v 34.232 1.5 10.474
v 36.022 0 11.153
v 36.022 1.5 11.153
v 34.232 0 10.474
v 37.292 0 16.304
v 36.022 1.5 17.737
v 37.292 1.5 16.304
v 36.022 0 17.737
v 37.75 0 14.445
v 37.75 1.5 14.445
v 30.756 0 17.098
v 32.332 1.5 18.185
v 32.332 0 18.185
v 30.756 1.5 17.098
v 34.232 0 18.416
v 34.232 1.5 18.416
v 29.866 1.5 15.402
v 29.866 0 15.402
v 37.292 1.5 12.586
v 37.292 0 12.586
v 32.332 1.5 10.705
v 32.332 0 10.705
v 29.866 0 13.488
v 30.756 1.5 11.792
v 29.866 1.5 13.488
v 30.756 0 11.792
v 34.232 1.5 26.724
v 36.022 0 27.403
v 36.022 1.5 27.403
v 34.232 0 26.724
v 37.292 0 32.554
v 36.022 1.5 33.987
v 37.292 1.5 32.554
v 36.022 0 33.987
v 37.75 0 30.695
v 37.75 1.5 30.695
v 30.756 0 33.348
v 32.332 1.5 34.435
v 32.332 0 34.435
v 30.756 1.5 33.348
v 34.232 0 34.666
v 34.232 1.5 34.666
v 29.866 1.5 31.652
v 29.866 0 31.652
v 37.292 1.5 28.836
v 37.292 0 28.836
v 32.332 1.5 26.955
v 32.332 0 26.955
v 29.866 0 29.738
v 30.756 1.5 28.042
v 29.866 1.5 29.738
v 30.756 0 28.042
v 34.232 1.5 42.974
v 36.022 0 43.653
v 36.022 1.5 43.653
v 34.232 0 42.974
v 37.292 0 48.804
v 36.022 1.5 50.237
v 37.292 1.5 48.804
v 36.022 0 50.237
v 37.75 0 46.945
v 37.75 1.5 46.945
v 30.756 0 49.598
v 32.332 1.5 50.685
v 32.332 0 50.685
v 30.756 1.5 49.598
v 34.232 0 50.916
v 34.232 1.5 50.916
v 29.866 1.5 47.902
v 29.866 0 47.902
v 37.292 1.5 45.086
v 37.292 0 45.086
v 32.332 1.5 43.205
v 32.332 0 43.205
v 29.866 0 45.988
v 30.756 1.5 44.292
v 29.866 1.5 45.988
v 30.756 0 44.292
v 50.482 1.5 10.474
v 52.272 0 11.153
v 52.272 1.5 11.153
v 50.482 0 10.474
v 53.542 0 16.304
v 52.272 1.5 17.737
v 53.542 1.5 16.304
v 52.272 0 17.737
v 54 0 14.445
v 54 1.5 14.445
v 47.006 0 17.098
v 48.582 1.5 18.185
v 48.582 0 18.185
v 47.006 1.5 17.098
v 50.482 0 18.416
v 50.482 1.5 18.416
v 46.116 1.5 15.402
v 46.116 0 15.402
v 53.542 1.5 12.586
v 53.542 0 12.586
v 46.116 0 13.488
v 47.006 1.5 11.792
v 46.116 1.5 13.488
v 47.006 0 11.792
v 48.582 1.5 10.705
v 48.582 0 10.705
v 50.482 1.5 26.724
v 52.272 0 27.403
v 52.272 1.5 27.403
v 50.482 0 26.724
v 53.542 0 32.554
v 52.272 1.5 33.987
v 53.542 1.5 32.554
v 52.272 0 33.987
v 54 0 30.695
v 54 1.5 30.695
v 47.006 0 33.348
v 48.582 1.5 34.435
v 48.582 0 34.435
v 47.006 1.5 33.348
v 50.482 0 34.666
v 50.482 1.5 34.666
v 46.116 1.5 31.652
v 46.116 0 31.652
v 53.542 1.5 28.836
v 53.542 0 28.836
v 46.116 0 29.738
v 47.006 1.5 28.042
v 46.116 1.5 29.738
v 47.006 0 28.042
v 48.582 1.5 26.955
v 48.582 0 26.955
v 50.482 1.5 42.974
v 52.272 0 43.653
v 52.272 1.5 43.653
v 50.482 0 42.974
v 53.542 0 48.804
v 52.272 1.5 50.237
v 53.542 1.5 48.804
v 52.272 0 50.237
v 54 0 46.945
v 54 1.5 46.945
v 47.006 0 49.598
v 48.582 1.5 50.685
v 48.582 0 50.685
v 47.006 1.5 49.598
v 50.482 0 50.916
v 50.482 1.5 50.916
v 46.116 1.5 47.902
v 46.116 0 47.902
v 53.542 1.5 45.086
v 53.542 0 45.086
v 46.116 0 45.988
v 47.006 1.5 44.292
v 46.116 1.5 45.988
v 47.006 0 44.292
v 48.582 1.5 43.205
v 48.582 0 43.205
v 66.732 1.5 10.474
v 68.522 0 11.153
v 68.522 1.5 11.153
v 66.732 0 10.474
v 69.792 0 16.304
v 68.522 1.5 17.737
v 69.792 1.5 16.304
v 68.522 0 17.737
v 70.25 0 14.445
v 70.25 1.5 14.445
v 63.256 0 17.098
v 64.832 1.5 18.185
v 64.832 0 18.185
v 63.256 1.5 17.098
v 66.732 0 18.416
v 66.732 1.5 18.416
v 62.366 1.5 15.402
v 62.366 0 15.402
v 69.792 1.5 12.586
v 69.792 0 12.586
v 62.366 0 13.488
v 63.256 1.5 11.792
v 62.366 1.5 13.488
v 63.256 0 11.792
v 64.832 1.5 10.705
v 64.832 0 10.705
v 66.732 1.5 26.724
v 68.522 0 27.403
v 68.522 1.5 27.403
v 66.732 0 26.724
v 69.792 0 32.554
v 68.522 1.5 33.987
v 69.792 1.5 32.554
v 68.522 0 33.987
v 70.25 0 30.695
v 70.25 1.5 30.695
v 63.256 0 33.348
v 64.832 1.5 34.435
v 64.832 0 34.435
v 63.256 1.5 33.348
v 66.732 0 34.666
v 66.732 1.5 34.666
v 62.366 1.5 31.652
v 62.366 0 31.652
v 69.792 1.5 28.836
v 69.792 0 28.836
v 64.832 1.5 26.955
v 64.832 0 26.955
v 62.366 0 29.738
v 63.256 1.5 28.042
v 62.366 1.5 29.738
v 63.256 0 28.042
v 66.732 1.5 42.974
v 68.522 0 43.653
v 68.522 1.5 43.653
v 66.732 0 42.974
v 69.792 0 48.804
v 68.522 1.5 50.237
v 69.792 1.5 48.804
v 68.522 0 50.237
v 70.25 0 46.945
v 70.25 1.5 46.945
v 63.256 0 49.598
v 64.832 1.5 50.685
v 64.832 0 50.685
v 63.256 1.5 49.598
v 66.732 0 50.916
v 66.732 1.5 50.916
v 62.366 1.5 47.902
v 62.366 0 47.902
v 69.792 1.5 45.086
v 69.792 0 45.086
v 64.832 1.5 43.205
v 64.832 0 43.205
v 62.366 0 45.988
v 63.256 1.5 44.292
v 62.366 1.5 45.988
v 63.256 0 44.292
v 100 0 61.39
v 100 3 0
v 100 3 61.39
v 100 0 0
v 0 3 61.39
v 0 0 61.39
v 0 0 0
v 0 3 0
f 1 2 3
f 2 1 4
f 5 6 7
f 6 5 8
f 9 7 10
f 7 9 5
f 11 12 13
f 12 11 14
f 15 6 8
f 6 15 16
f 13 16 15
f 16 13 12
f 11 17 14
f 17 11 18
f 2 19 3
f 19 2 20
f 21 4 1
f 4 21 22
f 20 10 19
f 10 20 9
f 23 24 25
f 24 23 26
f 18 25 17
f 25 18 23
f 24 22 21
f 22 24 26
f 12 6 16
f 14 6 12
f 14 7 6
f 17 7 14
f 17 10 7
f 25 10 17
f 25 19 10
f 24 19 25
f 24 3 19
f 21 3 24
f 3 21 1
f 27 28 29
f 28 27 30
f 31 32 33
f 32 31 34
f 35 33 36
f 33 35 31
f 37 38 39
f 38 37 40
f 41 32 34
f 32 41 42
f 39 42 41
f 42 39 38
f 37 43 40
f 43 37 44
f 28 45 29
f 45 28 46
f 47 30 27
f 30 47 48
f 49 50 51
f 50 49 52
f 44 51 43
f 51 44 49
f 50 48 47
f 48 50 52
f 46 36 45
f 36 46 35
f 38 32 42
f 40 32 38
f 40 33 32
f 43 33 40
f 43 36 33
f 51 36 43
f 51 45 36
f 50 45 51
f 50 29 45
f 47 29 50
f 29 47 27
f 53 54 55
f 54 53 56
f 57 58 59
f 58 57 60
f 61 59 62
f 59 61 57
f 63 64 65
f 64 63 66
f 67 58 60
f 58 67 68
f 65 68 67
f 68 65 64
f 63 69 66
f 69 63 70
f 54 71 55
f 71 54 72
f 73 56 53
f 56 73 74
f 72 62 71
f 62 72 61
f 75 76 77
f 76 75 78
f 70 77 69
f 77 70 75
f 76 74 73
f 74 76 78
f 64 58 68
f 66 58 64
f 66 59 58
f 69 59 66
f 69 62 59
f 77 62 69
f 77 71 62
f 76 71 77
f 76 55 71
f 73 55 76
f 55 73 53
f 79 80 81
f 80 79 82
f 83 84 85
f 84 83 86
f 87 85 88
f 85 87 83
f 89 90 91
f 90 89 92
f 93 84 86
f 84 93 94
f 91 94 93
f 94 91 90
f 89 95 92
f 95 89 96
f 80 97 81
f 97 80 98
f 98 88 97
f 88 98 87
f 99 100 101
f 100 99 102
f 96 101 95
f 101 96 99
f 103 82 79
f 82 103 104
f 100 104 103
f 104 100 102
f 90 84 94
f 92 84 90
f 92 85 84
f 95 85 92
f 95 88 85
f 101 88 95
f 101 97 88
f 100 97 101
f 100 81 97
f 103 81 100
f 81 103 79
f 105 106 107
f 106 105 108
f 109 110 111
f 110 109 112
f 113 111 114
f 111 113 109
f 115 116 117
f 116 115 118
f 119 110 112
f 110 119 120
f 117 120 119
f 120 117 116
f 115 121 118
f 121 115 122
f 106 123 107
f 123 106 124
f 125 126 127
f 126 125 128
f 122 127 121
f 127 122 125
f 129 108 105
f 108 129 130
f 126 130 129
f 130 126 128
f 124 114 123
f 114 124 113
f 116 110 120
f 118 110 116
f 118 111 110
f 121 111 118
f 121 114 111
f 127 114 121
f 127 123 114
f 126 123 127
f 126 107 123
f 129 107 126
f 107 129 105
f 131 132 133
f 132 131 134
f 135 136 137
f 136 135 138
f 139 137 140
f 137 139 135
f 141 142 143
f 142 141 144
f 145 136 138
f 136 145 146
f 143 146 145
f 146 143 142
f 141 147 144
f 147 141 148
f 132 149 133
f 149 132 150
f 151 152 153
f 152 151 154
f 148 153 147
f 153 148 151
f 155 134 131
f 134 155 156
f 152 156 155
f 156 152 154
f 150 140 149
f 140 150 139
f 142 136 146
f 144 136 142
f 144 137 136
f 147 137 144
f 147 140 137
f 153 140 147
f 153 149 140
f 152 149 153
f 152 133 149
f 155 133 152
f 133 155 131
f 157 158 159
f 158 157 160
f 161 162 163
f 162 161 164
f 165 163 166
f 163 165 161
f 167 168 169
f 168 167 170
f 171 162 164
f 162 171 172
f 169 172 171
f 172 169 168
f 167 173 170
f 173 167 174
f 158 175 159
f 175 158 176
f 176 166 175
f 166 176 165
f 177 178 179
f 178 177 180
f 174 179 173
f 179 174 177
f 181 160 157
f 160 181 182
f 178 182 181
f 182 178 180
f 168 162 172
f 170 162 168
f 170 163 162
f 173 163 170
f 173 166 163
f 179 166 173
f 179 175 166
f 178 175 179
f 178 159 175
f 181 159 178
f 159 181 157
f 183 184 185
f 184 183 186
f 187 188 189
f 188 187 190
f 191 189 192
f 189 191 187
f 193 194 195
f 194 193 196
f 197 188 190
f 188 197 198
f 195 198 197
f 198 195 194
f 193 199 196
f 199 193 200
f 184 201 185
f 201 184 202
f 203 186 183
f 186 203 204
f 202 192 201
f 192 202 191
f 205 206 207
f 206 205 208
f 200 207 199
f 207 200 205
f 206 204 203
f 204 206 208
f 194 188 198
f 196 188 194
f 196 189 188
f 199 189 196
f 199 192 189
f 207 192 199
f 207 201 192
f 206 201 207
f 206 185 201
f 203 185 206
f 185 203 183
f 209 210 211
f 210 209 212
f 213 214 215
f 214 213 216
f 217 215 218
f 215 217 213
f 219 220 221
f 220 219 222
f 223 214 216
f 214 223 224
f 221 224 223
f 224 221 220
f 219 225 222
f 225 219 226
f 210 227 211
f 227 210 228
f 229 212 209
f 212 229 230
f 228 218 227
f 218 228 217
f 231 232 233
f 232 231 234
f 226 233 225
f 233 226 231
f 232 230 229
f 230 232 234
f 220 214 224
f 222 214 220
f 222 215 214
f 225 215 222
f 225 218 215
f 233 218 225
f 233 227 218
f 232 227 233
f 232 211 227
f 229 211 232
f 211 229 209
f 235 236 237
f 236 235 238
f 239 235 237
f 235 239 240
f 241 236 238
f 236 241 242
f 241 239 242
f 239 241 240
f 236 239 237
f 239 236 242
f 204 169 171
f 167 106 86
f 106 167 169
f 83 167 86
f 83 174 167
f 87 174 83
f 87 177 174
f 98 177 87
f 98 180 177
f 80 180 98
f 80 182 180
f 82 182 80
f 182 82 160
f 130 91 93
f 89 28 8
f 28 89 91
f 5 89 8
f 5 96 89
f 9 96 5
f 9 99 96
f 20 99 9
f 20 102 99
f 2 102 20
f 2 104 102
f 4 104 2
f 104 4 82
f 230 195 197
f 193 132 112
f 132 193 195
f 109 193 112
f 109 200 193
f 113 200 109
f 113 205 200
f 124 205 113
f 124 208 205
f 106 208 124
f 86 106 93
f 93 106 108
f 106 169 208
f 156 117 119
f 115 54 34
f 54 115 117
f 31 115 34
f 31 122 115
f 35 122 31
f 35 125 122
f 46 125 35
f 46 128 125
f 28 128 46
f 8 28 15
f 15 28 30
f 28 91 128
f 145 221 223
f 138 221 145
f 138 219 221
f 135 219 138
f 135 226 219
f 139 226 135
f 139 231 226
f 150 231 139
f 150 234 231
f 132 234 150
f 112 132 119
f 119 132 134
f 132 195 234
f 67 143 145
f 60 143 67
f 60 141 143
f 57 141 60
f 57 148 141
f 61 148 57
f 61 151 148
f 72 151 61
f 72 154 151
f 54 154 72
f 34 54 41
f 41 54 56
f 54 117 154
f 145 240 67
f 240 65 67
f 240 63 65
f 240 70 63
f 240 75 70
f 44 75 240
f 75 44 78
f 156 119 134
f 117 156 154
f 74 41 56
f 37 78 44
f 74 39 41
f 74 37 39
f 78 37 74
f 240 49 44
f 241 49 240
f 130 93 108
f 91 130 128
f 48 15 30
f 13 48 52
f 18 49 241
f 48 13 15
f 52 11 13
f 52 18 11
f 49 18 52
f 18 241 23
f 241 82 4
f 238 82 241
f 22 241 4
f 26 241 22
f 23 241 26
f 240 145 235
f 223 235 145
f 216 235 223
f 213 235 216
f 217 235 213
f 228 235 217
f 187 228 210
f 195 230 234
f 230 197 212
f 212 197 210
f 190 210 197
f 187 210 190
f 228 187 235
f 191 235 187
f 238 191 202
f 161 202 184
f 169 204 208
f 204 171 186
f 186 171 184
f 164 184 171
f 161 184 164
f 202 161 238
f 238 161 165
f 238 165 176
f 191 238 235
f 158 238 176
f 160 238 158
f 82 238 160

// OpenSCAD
/* doodle-meta {"version":1,"parameters":{"width":{"label":"Overall width","description":"Changes the body width","unit":"mm","feature":"body_width"},"height":{"label":"Overall height","description":"Changes the body height","unit":"mm","feature":"body_height"},"thickness":{"label":"Plate thickness","description":"Changes the plate thickness","unit":"mm","feature":"body_thickness"},"hole_diameter":{"label":"Hole diameter","description":"Changes the diameter of the vent holes","unit":"mm","feature":"hole_grid"},"hole_spacing_x":{"label":"Horizontal hole spacing","description":"Changes the horizontal distance between hole centers","unit":"mm","feature":"hole_grid"},"hole_spacing_y":{"label":"Vertical hole spacing","description":"Changes the vertical distance between hole centers","unit":"mm","feature":"hole_grid"}},"features":{"body_width":{"kind":"dimension","axis":"x","label":"Overall width"},"body_height":{"kind":"dimension","axis":"z","label":"Overall height"},"body_thickness":{"kind":"dimension","axis":"y","label":"Plate thickness"},"hole_grid":{"kind":"region","label":"Hole Grid","min":[{"parameter":"width","scale":0.34},{"parameter":"thickness","scale":0.0,"offset":0.0},{"parameter":"height","scale":0.3673}],"max":[{"parameter":"width","scale":0.664},{"parameter":"thickness","scale":1.0,"offset":0.0},{"parameter":"height","scale":0.6287}]}}} */

width = 100.0;
height = 61.39;
thickness = 3.0;
hole_diameter = 8.0;
hole_spacing_x = 16.25;
hole_spacing_y = 16.25;

eps = 0.01;

module vent_grille() {
    difference() {
        // Main plate body
        cube([width, thickness, height]);
        
        // Subtract 3x3 grid of holes
        // Center of grid is at (width/2, height/2)
        // Holes are cut along Y axis (front view holes)
        for (i = [-1:1]) {
            for (j = [-1:1]) {
                translate([
                    width/2 + i * hole_spacing_x,
                    -eps,
                    height/2 + j * hole_spacing_y
                ]) {
                    rotate([90, 0, 0]) {
                        cylinder(h = thickness + 2*eps, d = hole_diameter, center = true);
                    }
                }
            }
        }
    }
}

vent_grille();
